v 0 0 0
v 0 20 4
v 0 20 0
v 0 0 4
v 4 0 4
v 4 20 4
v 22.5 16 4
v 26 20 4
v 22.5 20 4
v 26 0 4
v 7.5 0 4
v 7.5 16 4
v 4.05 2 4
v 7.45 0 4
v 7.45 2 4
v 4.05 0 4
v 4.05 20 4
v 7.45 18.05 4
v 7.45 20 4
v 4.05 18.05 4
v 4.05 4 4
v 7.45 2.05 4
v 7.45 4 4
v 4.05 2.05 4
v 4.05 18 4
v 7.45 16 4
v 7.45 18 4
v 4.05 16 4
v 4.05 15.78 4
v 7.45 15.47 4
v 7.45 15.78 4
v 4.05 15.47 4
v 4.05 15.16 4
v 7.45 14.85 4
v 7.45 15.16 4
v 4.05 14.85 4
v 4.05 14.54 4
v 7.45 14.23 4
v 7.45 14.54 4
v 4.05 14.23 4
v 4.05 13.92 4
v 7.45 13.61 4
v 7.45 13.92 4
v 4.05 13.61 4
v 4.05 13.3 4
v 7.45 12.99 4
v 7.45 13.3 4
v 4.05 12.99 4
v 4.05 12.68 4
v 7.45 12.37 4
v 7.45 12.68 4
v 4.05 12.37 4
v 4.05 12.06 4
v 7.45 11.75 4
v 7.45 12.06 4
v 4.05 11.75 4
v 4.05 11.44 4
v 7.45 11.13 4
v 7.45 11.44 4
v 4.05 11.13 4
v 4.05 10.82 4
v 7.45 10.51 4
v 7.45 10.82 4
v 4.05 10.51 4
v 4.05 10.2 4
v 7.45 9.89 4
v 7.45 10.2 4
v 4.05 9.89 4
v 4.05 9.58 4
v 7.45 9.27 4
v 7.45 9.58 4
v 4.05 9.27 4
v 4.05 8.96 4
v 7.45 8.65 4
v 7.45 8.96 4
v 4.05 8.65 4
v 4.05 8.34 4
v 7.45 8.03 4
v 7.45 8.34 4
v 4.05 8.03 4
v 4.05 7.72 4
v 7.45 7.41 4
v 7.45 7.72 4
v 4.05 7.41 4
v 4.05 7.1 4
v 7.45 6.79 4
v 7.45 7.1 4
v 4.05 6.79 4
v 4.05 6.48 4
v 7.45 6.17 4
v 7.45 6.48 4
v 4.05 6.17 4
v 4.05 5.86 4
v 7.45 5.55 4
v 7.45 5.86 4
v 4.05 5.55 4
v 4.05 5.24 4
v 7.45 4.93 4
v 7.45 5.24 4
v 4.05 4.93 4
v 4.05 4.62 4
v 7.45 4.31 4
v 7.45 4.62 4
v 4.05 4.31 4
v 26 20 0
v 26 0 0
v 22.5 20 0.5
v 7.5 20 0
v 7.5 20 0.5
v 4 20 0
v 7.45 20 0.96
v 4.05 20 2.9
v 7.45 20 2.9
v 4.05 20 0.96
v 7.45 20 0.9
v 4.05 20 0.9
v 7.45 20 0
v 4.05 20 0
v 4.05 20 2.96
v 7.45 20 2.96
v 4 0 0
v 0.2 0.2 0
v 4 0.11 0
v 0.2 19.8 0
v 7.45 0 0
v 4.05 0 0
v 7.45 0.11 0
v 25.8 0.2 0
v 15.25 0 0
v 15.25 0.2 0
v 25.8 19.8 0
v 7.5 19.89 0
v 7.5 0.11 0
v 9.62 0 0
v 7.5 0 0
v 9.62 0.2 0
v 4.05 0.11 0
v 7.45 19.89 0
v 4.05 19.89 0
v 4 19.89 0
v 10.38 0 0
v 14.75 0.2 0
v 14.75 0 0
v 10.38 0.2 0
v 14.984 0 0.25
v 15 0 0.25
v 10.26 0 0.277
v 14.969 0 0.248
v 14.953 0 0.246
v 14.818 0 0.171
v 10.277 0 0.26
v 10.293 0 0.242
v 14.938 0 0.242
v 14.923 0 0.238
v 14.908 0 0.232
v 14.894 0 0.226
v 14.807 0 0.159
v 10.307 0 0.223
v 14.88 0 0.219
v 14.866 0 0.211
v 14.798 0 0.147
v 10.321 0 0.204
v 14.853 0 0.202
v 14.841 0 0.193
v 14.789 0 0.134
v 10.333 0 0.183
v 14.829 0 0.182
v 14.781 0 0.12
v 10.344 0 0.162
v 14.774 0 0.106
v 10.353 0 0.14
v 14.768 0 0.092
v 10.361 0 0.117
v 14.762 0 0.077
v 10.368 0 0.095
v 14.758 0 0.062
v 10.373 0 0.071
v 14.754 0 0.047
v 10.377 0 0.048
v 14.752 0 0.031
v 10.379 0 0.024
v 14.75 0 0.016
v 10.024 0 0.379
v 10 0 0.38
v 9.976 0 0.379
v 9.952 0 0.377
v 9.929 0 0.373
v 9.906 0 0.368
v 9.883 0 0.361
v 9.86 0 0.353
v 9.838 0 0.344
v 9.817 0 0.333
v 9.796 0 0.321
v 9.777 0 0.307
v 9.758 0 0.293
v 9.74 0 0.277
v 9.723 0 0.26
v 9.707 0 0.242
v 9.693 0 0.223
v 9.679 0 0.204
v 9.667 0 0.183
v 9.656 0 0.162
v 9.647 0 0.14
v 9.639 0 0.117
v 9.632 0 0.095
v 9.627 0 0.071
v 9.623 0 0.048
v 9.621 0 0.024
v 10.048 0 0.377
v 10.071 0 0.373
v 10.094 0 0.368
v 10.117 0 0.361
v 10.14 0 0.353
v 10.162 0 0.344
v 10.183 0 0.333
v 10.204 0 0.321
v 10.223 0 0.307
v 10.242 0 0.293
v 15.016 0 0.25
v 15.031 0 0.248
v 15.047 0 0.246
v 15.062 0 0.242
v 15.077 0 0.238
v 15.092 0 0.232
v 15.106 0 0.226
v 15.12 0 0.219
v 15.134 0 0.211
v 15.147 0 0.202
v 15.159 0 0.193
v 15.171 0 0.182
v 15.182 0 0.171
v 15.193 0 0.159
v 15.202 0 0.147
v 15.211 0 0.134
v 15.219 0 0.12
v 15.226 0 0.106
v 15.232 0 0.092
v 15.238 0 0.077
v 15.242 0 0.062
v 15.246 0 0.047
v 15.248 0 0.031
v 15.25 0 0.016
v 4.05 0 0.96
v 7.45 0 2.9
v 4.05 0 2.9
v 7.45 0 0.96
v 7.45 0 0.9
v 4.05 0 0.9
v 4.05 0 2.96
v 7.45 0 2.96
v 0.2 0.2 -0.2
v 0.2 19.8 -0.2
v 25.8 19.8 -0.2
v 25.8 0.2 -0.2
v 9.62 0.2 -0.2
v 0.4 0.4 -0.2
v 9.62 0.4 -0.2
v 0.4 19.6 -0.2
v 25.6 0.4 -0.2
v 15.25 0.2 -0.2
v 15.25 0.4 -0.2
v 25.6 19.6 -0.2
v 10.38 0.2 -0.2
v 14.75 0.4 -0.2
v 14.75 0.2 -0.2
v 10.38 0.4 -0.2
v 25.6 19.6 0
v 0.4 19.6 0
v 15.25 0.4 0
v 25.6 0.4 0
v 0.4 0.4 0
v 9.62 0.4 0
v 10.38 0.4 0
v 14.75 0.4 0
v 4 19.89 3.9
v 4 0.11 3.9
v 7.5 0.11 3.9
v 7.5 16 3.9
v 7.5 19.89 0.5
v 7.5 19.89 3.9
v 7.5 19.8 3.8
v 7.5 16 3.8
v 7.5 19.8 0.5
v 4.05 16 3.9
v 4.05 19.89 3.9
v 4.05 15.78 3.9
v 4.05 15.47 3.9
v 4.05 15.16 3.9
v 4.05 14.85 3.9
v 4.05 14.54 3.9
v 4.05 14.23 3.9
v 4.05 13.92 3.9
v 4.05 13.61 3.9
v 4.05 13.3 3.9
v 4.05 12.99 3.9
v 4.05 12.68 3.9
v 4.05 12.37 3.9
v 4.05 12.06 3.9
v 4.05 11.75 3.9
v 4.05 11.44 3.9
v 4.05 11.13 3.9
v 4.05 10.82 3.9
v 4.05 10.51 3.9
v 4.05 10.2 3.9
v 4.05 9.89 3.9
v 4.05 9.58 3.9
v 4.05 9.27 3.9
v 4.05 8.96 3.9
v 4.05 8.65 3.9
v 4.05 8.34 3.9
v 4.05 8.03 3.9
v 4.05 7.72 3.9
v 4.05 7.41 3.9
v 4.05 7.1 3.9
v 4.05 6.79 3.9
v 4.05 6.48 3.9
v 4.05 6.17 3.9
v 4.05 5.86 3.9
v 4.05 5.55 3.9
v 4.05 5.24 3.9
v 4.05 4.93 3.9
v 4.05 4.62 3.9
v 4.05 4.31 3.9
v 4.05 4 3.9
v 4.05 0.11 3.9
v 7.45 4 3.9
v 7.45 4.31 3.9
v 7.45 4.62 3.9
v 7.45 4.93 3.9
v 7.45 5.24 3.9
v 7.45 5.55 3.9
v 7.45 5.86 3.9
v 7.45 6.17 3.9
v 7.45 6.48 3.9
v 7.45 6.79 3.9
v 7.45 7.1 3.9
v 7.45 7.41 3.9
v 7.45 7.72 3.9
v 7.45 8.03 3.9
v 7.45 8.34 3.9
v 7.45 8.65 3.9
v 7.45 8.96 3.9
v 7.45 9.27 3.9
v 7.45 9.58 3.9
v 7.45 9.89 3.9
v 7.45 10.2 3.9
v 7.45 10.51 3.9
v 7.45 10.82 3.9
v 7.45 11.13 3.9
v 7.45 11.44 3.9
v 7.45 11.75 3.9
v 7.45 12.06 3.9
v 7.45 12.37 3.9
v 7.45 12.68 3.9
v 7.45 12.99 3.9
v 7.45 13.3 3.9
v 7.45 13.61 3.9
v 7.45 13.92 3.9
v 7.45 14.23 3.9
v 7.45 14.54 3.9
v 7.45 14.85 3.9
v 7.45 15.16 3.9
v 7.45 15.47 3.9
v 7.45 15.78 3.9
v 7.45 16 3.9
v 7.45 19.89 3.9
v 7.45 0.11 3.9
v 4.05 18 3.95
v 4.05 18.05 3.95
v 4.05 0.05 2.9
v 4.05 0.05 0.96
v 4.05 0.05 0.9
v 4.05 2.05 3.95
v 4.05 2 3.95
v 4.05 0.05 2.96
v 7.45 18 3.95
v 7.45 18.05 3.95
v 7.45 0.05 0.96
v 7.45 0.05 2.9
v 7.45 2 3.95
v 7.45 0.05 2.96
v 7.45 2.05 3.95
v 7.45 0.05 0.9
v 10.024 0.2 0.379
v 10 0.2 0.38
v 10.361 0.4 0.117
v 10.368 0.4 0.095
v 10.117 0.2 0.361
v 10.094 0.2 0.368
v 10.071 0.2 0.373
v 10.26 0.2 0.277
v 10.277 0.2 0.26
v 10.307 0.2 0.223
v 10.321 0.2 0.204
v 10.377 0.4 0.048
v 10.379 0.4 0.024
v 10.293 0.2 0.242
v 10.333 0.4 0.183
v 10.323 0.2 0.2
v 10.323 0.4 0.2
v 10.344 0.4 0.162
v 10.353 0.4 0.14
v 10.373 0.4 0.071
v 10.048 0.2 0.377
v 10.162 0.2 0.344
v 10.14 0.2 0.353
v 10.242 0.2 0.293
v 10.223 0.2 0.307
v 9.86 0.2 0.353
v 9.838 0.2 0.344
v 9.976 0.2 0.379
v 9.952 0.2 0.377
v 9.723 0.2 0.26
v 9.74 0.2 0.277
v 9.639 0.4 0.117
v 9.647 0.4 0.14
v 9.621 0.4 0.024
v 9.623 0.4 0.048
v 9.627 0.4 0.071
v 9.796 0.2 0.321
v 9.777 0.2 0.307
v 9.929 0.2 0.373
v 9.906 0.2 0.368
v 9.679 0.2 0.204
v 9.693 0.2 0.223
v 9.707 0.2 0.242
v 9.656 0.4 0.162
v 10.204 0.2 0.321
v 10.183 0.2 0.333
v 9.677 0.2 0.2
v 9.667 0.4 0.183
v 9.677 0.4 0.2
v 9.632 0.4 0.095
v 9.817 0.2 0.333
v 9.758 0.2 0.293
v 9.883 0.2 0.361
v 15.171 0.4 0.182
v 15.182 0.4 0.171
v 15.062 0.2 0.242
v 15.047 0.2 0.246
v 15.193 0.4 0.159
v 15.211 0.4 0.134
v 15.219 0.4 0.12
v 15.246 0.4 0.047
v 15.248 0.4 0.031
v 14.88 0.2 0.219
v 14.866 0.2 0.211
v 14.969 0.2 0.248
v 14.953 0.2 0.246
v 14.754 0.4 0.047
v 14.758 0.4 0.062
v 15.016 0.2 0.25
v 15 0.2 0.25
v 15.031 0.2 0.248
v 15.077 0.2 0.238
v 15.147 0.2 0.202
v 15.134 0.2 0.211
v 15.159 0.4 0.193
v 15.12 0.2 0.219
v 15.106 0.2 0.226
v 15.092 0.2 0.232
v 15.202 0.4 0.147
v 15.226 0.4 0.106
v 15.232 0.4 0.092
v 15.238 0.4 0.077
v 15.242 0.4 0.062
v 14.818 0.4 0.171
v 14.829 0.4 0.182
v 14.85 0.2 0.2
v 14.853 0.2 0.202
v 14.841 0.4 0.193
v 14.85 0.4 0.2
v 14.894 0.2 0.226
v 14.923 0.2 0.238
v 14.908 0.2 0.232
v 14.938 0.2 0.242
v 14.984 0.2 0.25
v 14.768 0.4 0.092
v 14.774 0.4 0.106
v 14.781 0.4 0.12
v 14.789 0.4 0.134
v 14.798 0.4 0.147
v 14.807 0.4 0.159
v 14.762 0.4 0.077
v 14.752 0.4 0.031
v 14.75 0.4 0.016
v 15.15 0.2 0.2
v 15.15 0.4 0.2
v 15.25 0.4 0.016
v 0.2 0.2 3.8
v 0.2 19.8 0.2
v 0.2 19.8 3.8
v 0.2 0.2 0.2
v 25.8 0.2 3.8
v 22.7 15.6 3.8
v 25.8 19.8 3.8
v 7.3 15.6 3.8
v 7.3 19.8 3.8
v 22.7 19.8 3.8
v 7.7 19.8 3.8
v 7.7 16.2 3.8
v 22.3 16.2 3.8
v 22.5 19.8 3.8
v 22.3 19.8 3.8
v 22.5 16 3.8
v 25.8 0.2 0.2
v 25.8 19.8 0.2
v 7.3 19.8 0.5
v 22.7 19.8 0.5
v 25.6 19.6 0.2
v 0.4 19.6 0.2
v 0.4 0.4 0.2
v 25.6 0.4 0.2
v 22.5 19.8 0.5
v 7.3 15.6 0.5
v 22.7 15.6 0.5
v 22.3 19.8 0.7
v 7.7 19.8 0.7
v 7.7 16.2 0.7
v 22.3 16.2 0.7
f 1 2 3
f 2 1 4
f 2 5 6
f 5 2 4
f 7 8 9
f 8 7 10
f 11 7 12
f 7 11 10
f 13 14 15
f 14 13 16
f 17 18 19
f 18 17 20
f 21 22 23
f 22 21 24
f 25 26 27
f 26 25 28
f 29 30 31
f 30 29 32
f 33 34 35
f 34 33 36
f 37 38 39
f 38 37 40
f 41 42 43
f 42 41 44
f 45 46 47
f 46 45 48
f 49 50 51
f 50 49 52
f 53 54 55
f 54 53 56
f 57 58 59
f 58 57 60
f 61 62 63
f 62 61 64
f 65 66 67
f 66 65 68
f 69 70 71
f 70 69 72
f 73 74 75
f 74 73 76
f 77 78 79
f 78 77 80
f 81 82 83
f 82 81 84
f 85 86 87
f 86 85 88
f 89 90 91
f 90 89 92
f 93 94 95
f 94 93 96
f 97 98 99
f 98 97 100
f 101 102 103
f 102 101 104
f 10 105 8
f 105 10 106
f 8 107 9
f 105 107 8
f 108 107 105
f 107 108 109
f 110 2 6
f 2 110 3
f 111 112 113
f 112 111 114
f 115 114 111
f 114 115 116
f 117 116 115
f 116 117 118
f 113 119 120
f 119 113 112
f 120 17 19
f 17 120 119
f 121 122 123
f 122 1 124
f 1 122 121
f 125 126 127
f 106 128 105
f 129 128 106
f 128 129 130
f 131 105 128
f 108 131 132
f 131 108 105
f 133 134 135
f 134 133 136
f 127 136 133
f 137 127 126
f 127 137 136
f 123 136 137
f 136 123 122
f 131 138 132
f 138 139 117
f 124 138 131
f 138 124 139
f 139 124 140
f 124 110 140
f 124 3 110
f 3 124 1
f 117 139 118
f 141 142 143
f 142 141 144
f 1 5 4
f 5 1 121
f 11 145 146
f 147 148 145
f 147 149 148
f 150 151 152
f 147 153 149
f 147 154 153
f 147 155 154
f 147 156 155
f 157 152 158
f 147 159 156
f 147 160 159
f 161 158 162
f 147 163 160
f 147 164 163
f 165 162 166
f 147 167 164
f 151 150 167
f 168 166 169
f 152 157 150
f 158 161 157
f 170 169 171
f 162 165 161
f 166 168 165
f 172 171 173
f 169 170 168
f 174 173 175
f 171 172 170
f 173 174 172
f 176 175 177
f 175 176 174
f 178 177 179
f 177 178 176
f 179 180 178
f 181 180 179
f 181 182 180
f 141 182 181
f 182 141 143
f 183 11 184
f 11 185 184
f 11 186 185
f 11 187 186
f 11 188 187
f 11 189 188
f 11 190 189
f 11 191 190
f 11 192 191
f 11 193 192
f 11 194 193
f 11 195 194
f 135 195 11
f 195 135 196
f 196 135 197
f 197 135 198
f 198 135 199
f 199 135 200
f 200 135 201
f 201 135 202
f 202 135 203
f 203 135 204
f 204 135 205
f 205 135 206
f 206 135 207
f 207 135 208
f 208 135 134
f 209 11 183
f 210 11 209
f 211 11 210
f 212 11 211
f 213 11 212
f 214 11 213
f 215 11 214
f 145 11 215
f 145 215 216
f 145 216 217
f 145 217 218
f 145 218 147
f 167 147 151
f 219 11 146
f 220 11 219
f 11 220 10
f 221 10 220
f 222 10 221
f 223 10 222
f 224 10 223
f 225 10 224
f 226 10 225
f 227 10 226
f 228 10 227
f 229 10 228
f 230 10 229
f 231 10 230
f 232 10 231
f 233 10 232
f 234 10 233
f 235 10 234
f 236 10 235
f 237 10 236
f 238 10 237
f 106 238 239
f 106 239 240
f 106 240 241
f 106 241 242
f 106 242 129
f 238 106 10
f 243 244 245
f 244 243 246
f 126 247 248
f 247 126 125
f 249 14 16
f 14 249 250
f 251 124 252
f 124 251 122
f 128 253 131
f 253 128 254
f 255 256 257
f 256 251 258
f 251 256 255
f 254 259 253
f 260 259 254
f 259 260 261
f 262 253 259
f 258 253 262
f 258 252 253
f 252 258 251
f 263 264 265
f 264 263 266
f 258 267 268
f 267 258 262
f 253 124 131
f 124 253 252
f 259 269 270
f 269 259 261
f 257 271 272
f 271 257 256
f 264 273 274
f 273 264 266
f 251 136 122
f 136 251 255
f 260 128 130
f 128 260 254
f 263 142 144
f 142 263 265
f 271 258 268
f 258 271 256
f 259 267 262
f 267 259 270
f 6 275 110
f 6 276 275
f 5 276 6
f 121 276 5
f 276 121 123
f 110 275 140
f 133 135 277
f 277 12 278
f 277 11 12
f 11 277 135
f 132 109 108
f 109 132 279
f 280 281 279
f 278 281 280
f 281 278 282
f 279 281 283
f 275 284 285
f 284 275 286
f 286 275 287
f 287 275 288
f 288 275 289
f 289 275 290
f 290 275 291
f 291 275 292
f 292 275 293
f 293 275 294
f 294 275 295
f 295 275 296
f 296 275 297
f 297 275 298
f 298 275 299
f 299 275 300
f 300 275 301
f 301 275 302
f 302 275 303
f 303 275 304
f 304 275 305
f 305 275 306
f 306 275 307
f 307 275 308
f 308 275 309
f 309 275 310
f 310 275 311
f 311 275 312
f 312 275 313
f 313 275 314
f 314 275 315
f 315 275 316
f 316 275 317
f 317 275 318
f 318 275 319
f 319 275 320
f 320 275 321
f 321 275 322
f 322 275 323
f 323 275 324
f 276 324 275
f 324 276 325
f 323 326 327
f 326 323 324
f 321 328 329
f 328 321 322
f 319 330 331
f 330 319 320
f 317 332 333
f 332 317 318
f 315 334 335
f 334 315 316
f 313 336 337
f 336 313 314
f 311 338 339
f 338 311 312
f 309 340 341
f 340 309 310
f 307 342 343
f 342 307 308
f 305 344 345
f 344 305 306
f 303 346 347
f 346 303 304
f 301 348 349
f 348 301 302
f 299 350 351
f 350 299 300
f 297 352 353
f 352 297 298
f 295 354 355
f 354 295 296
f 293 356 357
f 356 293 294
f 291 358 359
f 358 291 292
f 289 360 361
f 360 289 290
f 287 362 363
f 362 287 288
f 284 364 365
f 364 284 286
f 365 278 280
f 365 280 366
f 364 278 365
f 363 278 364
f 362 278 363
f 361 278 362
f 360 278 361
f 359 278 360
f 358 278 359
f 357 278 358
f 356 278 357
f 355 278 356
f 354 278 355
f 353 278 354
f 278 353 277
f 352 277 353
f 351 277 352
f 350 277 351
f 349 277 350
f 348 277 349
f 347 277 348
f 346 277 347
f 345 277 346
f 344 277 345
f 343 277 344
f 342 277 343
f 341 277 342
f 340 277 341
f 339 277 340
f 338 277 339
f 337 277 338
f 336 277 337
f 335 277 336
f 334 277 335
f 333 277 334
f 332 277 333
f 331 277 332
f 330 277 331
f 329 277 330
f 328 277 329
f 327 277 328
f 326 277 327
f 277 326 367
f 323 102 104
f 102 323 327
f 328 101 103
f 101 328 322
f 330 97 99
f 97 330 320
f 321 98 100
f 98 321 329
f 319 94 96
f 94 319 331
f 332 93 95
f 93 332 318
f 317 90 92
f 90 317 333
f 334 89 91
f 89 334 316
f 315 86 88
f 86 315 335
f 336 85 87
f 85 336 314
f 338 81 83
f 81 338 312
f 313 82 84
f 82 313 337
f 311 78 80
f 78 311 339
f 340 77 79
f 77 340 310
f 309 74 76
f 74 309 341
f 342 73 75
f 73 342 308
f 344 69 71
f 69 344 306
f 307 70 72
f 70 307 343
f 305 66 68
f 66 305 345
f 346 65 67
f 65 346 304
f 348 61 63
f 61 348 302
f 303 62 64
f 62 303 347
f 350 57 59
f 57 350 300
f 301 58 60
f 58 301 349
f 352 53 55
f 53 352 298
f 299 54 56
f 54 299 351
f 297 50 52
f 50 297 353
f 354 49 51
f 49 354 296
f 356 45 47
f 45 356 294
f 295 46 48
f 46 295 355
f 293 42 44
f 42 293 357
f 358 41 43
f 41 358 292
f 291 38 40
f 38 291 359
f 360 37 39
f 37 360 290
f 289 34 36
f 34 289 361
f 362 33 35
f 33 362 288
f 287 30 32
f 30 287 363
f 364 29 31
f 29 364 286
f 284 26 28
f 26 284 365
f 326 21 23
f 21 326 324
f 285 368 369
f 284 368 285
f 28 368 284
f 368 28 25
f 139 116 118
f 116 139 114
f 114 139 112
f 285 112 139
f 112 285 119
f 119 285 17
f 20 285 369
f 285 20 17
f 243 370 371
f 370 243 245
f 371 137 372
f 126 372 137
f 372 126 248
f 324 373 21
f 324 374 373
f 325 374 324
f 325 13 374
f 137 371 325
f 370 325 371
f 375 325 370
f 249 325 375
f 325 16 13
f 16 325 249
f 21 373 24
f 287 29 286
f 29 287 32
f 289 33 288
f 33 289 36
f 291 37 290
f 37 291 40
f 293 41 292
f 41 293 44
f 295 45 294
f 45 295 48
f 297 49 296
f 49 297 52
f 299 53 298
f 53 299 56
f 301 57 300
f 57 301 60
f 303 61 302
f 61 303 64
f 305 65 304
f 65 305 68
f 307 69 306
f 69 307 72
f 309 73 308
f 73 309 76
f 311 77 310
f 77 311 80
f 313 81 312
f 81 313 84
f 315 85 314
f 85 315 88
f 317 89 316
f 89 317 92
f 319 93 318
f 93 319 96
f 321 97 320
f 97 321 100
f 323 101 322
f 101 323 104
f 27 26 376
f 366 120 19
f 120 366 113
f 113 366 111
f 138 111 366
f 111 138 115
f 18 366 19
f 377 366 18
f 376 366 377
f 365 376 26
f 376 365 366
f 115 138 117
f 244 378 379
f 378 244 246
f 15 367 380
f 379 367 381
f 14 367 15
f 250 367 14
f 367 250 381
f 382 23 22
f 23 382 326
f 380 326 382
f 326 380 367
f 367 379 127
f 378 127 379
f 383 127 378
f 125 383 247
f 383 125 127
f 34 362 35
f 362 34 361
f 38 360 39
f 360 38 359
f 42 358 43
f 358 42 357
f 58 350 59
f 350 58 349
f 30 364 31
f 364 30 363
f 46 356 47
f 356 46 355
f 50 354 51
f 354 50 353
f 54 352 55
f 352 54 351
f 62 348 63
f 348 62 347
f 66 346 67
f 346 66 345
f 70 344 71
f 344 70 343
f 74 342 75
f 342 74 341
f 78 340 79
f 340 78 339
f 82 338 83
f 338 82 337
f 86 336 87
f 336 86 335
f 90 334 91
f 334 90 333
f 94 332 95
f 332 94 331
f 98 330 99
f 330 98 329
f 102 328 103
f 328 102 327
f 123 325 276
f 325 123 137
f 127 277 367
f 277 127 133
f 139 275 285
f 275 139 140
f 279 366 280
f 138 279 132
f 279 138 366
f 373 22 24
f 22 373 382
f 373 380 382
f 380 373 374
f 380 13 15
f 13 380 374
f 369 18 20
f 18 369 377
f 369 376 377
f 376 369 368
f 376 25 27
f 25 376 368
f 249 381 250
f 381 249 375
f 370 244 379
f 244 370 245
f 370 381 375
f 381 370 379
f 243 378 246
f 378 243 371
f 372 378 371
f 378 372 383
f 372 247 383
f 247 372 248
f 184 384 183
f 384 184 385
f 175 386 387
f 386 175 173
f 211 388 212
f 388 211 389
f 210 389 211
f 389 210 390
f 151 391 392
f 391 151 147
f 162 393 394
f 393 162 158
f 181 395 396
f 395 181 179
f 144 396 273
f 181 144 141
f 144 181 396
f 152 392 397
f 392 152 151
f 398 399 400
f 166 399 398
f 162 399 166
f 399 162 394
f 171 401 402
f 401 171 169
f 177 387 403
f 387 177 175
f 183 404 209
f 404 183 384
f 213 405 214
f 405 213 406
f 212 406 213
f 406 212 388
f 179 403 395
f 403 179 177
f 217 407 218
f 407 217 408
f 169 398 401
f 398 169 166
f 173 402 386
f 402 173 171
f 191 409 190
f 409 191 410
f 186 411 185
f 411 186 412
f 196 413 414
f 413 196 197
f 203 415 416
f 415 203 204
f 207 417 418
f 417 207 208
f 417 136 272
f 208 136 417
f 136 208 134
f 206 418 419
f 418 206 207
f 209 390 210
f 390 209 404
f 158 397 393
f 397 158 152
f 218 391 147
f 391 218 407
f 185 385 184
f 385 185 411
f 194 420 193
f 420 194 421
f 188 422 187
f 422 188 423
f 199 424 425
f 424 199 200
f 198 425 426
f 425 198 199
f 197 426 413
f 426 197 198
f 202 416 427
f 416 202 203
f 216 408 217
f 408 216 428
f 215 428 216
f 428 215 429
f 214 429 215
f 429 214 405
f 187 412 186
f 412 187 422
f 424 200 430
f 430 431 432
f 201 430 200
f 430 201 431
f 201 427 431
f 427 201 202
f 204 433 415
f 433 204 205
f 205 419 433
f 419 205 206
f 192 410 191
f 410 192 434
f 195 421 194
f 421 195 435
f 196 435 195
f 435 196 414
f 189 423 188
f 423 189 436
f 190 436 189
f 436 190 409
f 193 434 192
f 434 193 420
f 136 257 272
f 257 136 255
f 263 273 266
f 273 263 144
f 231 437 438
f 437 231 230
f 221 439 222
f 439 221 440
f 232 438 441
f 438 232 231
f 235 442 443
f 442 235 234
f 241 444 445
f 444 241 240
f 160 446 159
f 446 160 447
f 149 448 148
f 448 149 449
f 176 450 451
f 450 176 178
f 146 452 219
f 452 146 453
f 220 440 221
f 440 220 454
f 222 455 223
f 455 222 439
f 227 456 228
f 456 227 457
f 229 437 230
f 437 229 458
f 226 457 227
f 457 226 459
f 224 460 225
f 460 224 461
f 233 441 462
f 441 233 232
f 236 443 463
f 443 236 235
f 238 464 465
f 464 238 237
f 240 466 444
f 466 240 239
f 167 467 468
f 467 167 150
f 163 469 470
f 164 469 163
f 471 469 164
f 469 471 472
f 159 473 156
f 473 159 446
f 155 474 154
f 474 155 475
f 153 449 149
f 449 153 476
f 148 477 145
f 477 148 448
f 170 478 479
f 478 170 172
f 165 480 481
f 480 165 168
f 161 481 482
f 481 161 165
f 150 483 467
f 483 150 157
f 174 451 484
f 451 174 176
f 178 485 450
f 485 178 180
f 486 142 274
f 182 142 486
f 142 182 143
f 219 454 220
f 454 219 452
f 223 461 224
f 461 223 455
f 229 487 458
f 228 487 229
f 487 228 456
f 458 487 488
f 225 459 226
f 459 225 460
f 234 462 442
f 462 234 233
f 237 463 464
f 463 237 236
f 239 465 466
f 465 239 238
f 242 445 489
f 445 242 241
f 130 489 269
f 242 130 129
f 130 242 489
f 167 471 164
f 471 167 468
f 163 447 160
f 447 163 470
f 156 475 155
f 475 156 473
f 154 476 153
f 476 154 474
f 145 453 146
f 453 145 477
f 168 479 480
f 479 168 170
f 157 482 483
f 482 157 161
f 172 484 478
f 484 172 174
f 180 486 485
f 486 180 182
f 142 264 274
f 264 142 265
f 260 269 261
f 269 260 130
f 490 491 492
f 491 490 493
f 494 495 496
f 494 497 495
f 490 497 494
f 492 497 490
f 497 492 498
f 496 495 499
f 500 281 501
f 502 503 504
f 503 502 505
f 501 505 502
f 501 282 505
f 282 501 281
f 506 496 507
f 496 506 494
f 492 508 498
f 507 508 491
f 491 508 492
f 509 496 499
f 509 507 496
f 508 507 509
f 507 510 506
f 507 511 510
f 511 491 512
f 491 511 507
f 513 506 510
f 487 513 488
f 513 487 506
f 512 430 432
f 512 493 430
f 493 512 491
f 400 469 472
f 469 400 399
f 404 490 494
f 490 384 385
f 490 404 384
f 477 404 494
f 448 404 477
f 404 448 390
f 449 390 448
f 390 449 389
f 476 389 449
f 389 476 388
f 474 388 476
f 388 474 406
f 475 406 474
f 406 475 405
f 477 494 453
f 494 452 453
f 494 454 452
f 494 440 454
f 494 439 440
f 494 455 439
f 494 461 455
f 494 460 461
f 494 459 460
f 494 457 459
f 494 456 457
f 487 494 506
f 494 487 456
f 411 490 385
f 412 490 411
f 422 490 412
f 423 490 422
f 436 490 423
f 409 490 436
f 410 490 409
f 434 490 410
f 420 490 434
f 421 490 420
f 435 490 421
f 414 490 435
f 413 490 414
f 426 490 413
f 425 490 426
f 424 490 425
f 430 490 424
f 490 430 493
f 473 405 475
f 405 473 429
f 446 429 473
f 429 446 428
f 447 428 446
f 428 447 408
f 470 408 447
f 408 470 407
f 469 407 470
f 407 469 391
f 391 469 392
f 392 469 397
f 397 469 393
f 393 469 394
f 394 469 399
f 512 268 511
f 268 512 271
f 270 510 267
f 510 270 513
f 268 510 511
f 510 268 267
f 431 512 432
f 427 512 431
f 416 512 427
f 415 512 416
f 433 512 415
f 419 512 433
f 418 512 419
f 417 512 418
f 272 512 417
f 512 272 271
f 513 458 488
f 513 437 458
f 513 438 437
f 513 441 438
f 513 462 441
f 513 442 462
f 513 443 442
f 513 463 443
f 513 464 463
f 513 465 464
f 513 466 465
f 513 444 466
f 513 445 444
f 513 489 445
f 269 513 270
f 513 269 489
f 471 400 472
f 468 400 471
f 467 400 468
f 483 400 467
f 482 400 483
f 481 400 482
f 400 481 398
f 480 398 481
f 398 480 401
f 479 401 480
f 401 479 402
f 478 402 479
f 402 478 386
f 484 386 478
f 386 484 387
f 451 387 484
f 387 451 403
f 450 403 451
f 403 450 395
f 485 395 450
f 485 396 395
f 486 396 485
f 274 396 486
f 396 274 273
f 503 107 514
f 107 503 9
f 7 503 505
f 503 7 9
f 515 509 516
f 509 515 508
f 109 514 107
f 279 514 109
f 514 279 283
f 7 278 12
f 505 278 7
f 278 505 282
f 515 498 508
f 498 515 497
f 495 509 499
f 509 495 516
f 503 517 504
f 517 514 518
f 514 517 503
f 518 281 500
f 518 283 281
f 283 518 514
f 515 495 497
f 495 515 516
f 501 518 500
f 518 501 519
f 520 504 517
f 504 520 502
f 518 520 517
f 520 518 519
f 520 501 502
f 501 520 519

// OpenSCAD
module nes_top(){
    difference(){
        union(){
            cube([26,20,4]);
            translate([0.2,19.6,-0.2]){
                cube([25.6,0.2,0.4]);
            }
            translate([0.2,0.2,-0.2]){
                cube([25.6,0.2,0.4]);
            }
            translate([0.2,0.4,-0.2]){
                cube([0.2,19.2,0.4]);
            }
            translate([25.6,0.4,-0.2]){
                cube([0.2,19.2,0.4]);
            }
        }
        translate([0.2,0.2,0.2]){
            cube([25.6,19.6,3.6]);
        }
        translate([0.4,0.4,0]){
            cube([25.2,19.2,0.2]);
        }
        translate([7.5,16,0.5]){
            cube([15,4,3.5]);
        }
        translate([4,4,3.9]){
            difference(){
                cube([3.5,12,0.11]);
                for(x = [0.31:0.62:12]){
                    translate([0,x,0]){
                        cube([3.5,0.31,0.11]);
                    }
                }
            }
            translate([0,-4,0]) cube([0.05,20,0.11]);
            translate([3.45,-4,0]) cube([0.05,20,0.11]);
            
            translate([0,-4,-4]) cube([0.05,0.11,4]);
            translate([3.45,-4,-4]) cube([0.05,0.11,4]);
            
            translate([0,15.89,-4]) cube([0.05,0.11,4]);
            translate([3.45,15.89,-4]) cube([0.05,0.11,4]);
            
            translate([0,-2,0.05]) cube([3.5,0.05,0.06]);
            translate([0,14,0.05]) cube([3.5,0.05,0.06]);
            
            translate([0,-4,-1]) cube([3.5,0.05,0.06]);
            translate([0,16,-1]) cube([3.5,0.05,0.06]);
            
            translate([0,-4,-3]) cube([3.5,0.05,0.06]);
            translate([0,16,-3]) cube([3.5,0.05,0.06]);
        }
        translate([10,0,0]){
            rotate([-90,0,0]){
                cylinder(h=6, r=0.380, $fn=100);
            }
            translate([-0.38,0,-0.5]){
                cube([0.76,6,0.5]);
            }
        }
        translate([15,0,0]){
            rotate([-90,0,0]){
                cylinder(h=4, r=0.25, $fn=100);
            }
            translate([-0.25,0,-0.5]){
                cube([0.5,4,0.5]);
            }
        }
    }
    
    translate([7.3,15.6,0.5]){
        difference(){
            cube([15.4,4.2,3.3]);
            translate([0.4,0.6,0.2]){
                cube([14.6,4,3.1]);
            }
        }
    }
    
}

nes_top();
